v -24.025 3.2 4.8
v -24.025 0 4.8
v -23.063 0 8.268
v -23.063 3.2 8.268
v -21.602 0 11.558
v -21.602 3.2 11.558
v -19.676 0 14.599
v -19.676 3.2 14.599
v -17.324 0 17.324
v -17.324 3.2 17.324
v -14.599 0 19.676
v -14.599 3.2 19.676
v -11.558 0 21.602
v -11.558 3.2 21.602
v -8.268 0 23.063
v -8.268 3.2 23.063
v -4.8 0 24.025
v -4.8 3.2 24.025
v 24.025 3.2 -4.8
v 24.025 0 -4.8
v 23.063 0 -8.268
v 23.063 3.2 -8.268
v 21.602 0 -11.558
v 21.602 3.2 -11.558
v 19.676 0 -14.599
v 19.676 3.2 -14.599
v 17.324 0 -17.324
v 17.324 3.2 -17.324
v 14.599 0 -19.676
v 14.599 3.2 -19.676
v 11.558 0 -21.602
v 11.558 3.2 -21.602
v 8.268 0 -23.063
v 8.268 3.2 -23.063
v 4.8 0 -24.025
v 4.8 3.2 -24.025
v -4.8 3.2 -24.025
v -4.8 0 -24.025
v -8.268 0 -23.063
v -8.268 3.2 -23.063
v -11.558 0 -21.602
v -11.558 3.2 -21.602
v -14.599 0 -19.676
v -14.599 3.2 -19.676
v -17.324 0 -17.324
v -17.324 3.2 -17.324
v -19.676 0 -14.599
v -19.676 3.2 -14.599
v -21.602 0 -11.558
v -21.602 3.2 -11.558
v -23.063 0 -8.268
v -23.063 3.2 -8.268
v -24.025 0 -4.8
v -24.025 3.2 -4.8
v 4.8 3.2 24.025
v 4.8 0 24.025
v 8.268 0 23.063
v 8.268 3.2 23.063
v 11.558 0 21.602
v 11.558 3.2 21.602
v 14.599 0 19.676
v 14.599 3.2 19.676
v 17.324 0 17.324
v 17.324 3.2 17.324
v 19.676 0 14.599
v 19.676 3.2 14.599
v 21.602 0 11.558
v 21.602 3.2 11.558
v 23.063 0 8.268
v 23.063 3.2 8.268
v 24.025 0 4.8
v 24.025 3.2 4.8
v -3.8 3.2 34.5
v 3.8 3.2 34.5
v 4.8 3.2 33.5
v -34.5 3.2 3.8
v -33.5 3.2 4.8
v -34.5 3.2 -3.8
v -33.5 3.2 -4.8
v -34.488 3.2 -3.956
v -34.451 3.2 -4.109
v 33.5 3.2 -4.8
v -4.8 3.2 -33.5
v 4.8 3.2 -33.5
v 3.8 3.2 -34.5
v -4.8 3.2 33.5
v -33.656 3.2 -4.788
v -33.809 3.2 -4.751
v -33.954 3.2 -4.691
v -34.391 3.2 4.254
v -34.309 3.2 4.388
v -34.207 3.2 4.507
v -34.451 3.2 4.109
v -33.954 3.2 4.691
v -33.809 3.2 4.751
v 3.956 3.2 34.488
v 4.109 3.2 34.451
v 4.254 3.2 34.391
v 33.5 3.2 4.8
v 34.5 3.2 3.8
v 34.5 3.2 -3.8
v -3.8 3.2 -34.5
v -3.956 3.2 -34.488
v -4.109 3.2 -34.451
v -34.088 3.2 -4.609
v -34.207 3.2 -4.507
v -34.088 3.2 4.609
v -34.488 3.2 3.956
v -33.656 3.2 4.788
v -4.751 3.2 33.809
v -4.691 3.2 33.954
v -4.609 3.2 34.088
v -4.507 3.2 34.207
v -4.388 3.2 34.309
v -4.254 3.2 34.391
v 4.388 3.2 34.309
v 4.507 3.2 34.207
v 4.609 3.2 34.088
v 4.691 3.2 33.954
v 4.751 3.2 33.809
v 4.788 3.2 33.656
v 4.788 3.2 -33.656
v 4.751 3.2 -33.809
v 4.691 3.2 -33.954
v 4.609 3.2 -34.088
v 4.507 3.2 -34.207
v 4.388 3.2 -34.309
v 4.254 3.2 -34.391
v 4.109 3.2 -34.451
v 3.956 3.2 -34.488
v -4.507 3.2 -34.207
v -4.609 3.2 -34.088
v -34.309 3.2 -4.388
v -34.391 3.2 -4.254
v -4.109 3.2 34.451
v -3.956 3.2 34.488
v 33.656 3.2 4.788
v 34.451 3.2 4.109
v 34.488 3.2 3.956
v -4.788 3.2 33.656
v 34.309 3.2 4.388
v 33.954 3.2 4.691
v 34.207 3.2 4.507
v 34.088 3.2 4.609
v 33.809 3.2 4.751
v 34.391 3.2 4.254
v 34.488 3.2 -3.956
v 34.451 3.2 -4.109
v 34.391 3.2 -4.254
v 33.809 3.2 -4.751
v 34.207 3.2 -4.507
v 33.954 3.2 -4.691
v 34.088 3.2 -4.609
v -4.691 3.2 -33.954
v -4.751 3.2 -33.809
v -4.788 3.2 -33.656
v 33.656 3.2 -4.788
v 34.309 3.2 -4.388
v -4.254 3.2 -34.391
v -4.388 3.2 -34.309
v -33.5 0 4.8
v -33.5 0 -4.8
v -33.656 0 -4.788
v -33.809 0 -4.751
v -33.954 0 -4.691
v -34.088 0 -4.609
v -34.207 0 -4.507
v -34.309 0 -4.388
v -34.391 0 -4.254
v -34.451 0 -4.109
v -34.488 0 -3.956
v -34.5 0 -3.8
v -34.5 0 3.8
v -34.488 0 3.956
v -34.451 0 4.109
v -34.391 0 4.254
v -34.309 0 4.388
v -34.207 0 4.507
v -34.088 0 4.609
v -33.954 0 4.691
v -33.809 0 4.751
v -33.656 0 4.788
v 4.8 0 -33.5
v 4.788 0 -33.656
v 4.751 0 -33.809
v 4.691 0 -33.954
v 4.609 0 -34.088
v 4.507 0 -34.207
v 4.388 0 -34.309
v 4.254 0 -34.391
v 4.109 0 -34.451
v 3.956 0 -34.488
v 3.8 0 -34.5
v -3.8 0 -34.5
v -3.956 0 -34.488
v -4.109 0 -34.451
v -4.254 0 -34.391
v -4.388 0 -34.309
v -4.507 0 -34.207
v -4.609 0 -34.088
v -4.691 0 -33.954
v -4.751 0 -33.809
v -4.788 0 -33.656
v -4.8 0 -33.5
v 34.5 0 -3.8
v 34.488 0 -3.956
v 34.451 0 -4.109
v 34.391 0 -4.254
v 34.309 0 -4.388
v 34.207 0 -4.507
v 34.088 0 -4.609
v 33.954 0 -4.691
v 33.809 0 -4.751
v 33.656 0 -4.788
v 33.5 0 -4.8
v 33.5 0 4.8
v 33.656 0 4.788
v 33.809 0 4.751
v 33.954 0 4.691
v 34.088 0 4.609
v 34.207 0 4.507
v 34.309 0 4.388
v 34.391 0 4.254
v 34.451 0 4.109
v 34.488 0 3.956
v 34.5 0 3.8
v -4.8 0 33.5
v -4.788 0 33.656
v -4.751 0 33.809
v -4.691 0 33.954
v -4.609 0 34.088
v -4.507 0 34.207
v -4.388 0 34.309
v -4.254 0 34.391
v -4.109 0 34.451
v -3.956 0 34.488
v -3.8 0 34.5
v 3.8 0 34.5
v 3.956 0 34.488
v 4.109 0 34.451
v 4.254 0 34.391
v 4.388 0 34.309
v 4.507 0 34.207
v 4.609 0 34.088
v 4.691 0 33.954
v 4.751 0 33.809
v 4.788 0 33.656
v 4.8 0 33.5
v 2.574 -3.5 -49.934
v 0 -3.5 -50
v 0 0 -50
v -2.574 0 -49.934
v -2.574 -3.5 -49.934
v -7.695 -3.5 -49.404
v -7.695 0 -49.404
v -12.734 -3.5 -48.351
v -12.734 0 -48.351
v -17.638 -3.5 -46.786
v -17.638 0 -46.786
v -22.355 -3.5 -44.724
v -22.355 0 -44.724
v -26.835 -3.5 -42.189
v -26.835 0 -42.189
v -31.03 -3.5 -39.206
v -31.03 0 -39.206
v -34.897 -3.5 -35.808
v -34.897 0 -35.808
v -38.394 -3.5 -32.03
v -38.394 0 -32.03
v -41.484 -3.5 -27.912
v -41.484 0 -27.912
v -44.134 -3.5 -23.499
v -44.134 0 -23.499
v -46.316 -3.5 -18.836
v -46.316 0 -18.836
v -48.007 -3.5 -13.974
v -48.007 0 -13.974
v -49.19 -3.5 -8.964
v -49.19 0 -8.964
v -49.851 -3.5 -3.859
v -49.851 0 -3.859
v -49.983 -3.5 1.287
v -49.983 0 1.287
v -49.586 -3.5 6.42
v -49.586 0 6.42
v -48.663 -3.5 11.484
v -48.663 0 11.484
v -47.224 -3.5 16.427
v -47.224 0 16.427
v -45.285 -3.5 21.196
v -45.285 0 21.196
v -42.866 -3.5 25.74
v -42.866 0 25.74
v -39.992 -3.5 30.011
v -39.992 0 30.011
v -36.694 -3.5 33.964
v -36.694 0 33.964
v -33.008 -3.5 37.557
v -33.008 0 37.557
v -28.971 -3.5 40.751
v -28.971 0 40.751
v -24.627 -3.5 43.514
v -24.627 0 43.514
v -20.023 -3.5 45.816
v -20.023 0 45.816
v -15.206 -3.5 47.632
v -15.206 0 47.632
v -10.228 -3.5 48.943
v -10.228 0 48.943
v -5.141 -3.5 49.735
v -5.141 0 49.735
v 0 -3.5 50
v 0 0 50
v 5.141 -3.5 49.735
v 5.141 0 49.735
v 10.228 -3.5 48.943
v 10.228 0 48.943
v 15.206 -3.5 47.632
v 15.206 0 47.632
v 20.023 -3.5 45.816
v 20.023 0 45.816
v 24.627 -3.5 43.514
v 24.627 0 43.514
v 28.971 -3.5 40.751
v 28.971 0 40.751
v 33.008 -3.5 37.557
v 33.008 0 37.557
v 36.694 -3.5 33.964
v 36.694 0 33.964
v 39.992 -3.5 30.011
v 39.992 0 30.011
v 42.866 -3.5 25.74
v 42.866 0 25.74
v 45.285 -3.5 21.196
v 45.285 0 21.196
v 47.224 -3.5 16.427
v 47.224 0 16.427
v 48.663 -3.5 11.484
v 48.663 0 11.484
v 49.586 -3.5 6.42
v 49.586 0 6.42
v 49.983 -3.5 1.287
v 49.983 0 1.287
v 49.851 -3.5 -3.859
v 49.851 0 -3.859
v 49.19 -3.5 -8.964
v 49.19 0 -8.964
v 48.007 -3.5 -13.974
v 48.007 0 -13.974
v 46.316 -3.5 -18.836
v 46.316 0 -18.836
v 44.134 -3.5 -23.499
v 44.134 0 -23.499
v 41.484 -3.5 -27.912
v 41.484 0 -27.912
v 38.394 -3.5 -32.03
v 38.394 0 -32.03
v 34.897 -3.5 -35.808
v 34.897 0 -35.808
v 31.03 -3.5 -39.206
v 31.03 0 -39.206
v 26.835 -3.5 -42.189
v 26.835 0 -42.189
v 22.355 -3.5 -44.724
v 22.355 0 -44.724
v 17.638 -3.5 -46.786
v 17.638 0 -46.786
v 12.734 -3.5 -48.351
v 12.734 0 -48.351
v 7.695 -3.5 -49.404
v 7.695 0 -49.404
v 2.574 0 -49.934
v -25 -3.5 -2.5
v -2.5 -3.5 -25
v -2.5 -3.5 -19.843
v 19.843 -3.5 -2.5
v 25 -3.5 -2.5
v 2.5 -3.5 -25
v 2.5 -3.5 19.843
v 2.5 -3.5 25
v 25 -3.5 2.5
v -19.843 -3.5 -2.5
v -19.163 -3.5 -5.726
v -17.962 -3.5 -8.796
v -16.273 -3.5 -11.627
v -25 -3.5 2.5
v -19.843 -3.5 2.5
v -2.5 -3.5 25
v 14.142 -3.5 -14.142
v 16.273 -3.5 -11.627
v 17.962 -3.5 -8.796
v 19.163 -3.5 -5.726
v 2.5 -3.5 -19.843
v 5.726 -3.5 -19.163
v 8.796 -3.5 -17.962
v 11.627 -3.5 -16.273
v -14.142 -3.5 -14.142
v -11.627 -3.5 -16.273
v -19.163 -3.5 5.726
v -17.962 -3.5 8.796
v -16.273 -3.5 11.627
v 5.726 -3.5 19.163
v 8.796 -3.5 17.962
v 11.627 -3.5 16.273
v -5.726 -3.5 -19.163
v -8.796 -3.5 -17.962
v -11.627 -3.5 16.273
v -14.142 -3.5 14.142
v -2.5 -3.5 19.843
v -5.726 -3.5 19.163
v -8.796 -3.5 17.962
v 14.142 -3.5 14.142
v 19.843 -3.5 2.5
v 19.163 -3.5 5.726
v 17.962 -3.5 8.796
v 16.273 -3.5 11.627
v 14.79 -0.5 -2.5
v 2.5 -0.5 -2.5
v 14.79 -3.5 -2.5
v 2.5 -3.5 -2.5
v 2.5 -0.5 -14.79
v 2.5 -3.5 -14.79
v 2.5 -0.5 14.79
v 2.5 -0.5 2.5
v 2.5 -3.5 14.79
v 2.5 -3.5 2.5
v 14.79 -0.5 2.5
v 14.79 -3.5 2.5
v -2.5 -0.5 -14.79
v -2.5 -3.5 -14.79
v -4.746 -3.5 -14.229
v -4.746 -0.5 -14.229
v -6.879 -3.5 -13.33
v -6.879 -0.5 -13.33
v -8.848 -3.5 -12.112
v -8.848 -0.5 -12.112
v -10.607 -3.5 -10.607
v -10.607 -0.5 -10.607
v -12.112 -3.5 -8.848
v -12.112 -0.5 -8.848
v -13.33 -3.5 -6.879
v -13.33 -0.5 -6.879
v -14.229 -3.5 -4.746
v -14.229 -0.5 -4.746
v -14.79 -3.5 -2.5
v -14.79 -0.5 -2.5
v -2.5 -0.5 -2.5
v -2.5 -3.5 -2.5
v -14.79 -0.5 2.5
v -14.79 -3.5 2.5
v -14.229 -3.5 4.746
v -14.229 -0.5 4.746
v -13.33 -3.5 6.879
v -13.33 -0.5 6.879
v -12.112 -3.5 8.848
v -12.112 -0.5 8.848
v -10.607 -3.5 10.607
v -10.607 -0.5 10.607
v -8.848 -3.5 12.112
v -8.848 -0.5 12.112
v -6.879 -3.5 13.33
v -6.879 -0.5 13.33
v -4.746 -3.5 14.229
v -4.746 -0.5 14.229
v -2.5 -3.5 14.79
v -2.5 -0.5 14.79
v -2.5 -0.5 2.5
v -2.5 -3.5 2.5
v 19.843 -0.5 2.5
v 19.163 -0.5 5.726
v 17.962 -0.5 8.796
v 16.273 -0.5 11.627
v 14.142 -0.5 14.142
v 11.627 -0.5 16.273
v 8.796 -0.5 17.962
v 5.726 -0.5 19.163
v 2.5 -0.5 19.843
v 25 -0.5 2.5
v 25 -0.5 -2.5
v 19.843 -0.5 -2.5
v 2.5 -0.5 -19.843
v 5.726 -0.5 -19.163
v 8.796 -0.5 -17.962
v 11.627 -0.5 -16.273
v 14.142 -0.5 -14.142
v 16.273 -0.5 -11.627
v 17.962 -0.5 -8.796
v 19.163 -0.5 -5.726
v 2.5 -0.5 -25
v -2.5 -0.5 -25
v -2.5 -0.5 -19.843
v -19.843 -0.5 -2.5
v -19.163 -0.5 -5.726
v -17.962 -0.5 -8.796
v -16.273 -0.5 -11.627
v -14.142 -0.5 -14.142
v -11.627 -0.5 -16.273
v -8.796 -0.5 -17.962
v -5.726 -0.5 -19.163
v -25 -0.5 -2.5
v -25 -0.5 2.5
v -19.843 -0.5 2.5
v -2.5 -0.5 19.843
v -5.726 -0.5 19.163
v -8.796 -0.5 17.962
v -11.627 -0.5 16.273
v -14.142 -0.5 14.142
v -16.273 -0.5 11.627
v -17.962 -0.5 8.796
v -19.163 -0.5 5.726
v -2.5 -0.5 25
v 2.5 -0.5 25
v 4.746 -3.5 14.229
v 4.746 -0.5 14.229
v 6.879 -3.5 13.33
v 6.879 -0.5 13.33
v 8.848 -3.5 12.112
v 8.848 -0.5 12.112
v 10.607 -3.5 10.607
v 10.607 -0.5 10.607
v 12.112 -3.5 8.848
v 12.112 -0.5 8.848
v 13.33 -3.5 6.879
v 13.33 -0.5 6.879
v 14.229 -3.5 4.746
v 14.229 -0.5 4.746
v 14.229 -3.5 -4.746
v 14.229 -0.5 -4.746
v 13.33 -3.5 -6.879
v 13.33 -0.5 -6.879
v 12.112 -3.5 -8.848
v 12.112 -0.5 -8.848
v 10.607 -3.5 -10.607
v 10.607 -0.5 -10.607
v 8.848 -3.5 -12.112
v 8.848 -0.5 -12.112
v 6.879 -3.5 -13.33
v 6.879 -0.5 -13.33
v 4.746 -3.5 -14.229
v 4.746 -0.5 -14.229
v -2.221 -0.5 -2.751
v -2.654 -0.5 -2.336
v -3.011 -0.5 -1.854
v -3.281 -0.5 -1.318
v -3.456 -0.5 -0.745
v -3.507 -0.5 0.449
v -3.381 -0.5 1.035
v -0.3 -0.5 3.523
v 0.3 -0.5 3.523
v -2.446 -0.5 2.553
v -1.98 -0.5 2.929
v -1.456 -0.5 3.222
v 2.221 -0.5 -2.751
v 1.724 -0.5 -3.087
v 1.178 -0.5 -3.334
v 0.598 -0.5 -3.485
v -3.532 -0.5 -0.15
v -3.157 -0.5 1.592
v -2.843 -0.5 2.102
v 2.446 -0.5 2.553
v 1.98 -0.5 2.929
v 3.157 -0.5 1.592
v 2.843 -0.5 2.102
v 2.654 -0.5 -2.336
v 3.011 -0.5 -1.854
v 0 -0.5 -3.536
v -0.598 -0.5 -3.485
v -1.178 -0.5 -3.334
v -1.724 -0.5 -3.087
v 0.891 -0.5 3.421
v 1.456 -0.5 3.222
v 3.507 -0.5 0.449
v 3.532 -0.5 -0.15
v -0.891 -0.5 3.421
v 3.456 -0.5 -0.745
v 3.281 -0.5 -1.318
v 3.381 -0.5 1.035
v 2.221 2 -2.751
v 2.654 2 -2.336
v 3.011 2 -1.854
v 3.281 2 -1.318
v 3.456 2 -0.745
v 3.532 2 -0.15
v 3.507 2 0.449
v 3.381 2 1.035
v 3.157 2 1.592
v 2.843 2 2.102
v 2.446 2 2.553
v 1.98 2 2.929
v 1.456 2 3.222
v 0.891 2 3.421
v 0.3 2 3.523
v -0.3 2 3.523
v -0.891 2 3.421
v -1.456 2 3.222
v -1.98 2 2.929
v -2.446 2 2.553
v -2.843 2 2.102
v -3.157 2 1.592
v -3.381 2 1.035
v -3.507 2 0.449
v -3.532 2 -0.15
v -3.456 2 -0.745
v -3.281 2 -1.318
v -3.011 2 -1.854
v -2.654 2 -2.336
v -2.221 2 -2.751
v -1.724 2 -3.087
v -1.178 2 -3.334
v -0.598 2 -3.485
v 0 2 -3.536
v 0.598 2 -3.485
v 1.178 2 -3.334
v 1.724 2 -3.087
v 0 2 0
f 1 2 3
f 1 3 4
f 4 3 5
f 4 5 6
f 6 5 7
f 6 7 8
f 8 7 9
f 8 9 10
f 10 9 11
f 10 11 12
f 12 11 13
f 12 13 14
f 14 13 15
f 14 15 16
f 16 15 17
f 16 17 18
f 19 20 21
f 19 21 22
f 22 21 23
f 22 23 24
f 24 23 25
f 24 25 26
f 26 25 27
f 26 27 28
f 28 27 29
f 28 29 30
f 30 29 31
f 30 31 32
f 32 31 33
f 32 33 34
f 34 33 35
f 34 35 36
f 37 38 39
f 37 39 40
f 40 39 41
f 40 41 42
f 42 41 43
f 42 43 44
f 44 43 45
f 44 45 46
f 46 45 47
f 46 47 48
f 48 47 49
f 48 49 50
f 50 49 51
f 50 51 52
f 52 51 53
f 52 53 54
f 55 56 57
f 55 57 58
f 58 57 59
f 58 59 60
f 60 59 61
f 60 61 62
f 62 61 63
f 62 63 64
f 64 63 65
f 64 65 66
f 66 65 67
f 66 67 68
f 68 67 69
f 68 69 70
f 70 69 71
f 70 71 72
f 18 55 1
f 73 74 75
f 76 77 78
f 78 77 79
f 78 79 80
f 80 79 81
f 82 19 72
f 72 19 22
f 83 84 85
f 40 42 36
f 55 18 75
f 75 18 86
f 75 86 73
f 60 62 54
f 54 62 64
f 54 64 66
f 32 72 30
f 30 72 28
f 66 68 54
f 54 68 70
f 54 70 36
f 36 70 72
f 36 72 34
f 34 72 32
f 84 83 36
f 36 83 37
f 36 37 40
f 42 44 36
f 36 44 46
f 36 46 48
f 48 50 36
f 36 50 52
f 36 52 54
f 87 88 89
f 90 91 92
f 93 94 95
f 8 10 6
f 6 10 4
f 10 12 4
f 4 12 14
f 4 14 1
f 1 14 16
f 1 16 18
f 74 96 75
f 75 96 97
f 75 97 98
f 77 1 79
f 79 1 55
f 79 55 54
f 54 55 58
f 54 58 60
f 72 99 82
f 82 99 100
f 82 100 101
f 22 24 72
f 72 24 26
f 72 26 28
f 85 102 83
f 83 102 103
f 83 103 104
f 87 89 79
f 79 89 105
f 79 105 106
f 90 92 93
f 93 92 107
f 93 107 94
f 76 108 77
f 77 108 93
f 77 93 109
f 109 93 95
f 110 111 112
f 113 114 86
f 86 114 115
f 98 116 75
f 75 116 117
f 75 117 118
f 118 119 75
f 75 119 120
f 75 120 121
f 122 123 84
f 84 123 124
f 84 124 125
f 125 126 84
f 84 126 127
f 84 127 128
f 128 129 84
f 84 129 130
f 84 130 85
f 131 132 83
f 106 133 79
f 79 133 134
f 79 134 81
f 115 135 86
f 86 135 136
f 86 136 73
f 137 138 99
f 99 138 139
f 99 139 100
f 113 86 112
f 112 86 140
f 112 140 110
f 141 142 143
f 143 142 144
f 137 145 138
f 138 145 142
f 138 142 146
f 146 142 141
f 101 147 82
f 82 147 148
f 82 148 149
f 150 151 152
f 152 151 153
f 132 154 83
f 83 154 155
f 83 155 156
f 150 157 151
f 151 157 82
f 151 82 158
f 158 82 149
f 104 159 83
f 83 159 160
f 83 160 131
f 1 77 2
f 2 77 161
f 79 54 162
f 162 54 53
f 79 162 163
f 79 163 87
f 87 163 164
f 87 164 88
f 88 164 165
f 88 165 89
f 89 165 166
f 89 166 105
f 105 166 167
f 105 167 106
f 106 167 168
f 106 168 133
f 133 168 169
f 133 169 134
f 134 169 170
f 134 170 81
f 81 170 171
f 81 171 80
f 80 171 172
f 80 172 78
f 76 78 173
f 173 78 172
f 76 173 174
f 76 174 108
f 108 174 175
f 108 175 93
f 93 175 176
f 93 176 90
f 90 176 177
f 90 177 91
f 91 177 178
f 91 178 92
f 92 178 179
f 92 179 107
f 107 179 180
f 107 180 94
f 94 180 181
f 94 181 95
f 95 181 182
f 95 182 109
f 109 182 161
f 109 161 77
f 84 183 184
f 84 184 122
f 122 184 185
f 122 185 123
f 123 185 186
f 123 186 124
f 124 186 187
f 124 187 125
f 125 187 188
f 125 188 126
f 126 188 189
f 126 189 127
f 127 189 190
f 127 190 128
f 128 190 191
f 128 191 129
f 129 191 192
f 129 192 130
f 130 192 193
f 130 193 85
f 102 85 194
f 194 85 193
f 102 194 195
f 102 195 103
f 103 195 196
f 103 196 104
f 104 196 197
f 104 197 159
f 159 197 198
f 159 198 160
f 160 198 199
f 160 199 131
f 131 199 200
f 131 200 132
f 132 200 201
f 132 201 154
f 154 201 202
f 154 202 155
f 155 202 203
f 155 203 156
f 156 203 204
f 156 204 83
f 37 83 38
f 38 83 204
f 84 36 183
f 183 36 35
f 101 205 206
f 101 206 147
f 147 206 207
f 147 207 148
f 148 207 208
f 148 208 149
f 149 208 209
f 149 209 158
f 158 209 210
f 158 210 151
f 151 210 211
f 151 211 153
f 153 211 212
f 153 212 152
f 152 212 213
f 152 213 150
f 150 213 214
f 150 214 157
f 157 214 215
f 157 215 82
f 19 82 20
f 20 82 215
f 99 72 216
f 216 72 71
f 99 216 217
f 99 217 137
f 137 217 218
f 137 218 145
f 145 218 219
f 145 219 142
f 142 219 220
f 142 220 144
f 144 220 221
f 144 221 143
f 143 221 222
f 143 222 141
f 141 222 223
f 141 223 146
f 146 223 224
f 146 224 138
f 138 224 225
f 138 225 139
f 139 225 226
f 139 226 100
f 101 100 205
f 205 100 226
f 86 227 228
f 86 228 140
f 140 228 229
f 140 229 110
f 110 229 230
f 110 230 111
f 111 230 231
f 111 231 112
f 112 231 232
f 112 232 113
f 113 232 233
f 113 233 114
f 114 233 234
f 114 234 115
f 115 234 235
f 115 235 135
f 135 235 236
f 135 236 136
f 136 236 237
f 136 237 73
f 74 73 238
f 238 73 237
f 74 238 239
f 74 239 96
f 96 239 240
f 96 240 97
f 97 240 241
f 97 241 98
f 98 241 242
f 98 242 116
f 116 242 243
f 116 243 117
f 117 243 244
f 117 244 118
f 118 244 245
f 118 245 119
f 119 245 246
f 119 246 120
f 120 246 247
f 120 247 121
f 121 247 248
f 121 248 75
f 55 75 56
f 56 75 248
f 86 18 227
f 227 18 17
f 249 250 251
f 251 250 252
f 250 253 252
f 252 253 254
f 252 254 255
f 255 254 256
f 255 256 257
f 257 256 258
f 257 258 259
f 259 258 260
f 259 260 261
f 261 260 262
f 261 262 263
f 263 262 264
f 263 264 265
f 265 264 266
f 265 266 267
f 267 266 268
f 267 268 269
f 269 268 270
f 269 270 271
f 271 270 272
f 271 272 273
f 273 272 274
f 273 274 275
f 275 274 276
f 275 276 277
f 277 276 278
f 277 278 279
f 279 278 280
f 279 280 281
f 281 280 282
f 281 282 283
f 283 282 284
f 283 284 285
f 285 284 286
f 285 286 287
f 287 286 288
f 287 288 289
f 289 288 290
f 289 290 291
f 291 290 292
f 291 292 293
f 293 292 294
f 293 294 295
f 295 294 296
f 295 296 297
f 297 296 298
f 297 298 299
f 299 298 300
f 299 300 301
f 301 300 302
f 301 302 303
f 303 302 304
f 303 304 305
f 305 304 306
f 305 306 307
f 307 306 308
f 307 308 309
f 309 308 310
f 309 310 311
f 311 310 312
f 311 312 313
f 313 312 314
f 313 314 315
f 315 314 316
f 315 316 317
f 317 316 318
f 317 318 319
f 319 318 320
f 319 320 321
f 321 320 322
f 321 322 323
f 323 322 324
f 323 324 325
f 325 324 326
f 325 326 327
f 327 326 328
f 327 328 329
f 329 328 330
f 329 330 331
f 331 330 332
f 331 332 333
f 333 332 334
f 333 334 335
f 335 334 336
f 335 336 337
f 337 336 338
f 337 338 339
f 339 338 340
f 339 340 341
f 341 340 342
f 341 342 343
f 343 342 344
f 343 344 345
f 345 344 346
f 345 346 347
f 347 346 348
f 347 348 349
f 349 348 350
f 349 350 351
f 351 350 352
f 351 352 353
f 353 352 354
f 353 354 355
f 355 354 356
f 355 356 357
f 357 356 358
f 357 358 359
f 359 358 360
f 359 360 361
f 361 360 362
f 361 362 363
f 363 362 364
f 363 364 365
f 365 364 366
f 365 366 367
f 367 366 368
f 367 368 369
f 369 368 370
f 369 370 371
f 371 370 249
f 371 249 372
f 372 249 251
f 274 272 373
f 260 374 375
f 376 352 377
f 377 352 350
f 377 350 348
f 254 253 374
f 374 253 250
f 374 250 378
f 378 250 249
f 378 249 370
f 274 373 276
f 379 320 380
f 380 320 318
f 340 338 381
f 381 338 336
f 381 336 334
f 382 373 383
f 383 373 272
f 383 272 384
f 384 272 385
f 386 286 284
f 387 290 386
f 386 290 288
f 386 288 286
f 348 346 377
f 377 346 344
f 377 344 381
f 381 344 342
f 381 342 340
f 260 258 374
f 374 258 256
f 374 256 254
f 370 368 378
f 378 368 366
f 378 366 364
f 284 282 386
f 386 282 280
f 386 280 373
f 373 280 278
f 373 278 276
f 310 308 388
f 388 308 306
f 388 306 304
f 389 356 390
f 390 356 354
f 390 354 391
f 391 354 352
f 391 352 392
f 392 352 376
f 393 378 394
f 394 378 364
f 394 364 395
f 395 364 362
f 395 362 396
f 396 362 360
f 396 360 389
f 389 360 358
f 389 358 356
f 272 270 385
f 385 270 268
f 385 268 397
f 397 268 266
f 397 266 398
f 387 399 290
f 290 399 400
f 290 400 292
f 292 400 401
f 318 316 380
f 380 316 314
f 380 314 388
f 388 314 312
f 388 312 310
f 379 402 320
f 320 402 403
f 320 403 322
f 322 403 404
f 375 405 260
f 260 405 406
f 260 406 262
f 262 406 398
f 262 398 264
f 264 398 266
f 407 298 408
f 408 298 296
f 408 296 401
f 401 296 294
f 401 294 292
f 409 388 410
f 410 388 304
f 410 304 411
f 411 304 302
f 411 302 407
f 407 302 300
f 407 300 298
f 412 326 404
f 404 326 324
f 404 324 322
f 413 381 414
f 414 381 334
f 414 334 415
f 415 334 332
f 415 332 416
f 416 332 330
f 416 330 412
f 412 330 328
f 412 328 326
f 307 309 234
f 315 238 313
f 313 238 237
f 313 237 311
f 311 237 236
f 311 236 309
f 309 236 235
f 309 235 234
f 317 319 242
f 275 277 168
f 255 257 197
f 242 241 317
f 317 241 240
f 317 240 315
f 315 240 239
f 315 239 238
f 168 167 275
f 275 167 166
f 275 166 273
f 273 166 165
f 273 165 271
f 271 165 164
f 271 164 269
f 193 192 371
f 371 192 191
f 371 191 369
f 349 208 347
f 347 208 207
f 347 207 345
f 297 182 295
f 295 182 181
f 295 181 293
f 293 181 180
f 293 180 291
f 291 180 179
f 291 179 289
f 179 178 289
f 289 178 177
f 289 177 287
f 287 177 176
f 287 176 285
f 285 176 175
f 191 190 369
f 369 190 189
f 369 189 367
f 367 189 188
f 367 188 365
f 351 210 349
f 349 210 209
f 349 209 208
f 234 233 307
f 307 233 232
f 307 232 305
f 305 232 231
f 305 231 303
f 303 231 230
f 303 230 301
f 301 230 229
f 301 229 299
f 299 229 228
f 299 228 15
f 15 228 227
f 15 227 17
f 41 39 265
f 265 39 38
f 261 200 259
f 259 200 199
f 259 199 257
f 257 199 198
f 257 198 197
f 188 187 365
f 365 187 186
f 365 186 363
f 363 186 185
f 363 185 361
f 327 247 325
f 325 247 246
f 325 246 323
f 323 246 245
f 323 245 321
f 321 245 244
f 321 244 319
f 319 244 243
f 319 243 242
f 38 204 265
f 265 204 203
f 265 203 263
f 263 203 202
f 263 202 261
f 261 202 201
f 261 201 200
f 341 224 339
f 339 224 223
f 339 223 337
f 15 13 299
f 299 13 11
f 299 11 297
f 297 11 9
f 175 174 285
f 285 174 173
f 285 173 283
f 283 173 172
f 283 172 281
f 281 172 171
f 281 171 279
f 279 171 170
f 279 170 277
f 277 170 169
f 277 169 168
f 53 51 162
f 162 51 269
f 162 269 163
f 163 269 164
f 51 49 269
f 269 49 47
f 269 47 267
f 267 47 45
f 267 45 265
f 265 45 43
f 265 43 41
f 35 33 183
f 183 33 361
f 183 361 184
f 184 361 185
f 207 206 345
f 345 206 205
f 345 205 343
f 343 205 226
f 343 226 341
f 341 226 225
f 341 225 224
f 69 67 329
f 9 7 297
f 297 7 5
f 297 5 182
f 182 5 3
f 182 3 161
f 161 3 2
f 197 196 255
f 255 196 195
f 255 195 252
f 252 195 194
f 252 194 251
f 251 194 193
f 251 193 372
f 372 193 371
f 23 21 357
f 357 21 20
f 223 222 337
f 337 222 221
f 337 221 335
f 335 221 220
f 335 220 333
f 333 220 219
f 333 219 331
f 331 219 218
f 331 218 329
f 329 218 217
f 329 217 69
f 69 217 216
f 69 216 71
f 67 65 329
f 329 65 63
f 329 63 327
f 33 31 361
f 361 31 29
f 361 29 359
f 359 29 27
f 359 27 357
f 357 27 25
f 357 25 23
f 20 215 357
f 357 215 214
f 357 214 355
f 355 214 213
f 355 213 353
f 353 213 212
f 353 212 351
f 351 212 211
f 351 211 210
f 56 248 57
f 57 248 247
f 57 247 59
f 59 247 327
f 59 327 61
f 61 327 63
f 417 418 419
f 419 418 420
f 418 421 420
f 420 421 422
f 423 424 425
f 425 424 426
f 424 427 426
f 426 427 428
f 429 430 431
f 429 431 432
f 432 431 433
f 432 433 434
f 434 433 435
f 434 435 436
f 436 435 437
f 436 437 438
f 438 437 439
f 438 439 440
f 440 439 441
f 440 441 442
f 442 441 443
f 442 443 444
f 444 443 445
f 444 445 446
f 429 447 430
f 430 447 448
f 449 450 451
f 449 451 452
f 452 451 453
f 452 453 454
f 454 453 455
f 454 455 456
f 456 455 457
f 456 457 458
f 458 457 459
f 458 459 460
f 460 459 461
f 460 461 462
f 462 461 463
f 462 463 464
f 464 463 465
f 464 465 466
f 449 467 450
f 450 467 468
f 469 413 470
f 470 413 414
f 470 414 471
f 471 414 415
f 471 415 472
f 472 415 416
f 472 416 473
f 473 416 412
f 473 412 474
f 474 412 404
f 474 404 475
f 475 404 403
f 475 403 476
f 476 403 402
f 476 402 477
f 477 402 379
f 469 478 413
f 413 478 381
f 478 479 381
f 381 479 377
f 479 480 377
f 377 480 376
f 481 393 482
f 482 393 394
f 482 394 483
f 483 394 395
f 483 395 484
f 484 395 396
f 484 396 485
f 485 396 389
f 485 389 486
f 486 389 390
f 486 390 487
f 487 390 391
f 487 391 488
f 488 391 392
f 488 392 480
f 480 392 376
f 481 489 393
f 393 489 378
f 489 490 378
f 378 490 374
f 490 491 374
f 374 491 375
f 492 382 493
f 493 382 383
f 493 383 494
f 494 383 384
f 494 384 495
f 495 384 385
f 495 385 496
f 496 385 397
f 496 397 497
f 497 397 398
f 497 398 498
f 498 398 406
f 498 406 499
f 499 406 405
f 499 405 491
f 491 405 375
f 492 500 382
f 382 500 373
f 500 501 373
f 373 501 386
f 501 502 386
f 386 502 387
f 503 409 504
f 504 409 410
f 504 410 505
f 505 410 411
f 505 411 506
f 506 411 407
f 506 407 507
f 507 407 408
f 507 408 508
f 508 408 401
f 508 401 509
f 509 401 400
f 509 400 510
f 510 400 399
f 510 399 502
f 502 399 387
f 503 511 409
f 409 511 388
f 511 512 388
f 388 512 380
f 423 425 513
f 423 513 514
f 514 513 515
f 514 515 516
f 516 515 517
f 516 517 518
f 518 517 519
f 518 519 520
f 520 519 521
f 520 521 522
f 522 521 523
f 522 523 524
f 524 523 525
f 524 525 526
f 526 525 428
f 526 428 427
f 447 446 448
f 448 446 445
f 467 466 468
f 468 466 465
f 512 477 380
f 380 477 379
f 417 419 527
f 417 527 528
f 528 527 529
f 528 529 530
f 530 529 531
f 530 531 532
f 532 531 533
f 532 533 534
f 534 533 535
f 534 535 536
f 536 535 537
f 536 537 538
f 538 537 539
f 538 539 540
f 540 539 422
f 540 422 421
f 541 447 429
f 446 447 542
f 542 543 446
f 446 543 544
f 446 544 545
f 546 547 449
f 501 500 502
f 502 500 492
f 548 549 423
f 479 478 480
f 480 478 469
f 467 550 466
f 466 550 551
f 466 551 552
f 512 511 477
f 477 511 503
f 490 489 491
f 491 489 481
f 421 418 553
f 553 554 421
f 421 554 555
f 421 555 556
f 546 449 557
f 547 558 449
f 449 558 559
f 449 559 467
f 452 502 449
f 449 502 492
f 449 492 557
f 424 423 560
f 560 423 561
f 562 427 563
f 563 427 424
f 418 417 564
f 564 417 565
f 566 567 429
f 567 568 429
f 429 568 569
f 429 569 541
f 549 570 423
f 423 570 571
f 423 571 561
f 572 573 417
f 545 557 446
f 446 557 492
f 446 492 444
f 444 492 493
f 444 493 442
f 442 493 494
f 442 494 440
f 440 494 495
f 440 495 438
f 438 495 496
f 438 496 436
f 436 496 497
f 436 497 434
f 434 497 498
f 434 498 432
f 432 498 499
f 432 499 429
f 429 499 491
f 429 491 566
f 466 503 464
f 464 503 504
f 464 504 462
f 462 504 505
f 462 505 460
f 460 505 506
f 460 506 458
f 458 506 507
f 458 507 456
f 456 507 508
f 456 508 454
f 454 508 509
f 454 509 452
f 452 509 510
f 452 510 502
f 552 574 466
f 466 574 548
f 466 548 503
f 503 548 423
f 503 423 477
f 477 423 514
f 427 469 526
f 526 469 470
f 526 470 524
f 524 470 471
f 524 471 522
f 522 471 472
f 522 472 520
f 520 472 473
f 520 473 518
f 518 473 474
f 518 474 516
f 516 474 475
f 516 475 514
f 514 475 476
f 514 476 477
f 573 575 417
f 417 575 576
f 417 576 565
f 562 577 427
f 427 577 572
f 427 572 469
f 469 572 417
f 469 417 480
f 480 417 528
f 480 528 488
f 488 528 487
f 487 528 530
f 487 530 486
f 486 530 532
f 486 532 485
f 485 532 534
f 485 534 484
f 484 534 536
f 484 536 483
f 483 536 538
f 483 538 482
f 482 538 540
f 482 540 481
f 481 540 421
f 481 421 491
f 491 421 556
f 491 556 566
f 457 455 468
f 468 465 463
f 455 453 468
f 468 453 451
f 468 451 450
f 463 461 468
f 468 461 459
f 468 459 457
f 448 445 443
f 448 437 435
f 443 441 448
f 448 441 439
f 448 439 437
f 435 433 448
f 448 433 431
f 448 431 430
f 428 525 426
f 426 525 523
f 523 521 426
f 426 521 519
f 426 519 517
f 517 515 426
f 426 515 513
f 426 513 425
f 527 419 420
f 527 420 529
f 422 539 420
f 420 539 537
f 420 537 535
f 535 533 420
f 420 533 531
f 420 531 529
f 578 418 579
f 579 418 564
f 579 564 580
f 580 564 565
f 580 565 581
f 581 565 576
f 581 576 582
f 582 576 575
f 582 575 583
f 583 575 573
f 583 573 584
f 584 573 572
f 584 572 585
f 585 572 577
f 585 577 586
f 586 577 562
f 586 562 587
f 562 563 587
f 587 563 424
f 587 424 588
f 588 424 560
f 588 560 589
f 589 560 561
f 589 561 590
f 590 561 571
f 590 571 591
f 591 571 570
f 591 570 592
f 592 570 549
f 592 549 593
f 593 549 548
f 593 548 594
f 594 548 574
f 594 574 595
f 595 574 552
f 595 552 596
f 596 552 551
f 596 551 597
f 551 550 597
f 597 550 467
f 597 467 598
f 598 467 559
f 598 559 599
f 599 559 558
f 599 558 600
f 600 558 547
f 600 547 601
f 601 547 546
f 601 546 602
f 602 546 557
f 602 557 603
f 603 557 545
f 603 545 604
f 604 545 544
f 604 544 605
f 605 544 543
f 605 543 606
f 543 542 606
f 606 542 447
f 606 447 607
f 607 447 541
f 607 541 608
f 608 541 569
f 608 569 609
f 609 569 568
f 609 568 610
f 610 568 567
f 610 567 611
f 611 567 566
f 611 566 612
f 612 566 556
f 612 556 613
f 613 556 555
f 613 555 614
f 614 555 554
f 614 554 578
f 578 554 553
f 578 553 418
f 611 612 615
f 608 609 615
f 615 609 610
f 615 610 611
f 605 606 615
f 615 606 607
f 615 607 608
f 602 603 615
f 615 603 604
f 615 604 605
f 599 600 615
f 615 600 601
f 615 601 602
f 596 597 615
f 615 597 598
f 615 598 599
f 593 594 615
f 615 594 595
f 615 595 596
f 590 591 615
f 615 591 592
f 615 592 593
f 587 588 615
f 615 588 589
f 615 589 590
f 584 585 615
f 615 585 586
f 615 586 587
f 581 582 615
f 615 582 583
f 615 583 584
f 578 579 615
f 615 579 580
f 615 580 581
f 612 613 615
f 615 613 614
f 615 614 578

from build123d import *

# Parameters (mm, degrees)
CROQUIS5_R              = 24.5
SALIENTE_EXTRUIR3_DEPTH = 3.2
SALIENTE_EXTRUIR4_DEPTH = 3.2
CROQUIS7_R              = 50
SALIENTE_EXTRUIR5_DEPTH = 3.5
CROQUIS8_W              = 5
CROQUIS8_H              = 5
CORTAR_EXTRUIR3_DEPTH   = 3
CROQUIS9_R              = 3.535533906
CORTAR_EXTRUIR4_DEPTH   = 2.5


with BuildPart() as part:
    # Croquis5 → Saliente-Extruir3 (new body)
    with BuildSketch(Plane(origin=(0, 0, 0), x_dir=(1, 0, 0), z_dir=(0, 1, 0))):
        with Locations(Location((0, 0, 0), (0, 0, 270))):
            Circle(CROQUIS5_R)
    extrude(amount=SALIENTE_EXTRUIR3_DEPTH)

    # Croquis6 → Saliente-Extruir4 (add)
    with BuildSketch(Plane.XZ):
        with BuildLine():
            Line((33.5, 4.8), (-33.5, 4.8))
            ThreePointArc((-33.5, 4.8), (-34.207106781, 4.507106781), (-34.5, 3.8))
            Line((-34.5, 3.8), (-34.5, -3.8))
            ThreePointArc((-34.5, -3.8), (-34.207106781, -4.507106781), (-33.5, -4.8))
            Line((-33.5, -4.8), (33.5, -4.8))
            ThreePointArc((33.5, -4.8), (34.207106781, -4.507106781), (34.5, -3.8))
            Line((34.5, -3.8), (34.5, 3.8))
            ThreePointArc((34.5, 3.8), (34.207106781, 4.507106781), (33.5, 4.8))
        make_face()
        with BuildLine():
            Line((3.8, -34.5), (-3.8, -34.5))
            ThreePointArc((-3.8, -34.5), (-4.507106781, -34.207106781), (-4.8, -33.5))
            Line((-4.8, -33.5), (-4.8, 33.5))
            ThreePointArc((-4.8, 33.5), (-4.507106781, 34.207106781), (-3.8, 34.5))
            Line((-3.8, 34.5), (3.8, 34.5))
            ThreePointArc((3.8, 34.5), (4.507106781, 34.207106781), (4.8, 33.5))
            Line((4.8, 33.5), (4.8, -33.5))
            ThreePointArc((4.8, -33.5), (4.507106781, -34.207106781), (3.8, -34.5))
        make_face()
    extrude(amount=-SALIENTE_EXTRUIR4_DEPTH)

    # Croquis7 → Saliente-Extruir5 (add)
    with BuildSketch(Plane.XZ):
        with Locations(Location((0, 0, 0), (0, 0, 270))):
            Circle(CROQUIS7_R)
    extrude(amount=SALIENTE_EXTRUIR5_DEPTH)

    # Croquis8 → Cortar-Extruir3 (cut)
    with BuildSketch(Plane.XZ.offset(3.5)):
        with BuildLine():
            Line((-2.5, -25), (2.5, -25))
            Line((2.5, -25), (2.5, -19.843134833))
            ThreePointArc((2.5, -19.843134833), (0, -20), (-2.5, -19.843134833))
            Line((-2.5, -19.843134833), (-2.5, -25))
        make_face()
        with BuildLine():
            ThreePointArc((-2.5, -19.843134833), (0, -20), (2.5, -19.843134833))
            Line((2.5, -19.843134833), (2.5, -14.790199458))
            ThreePointArc((2.5, -14.790199458), (0, -15), (-2.5, -14.790199458))
            Line((-2.5, -14.790199458), (-2.5, -19.843134833))
        make_face()
        with BuildLine():
            ThreePointArc((2.5, 19.843134833), (0, 20), (-2.5, 19.843134833))
            Line((-2.5, 19.843134833), (-2.5, 14.790199458))
            ThreePointArc((-2.5, 14.790199458), (0, 15), (2.5, 14.790199458))
            Line((2.5, 14.790199458), (2.5, 19.843134833))
        make_face()
        with BuildLine():
            ThreePointArc((-2.5, -14.790199458), (0, -15), (2.5, -14.790199458))
            Line((2.5, -14.790199458), (2.5, -2.5))
            Line((2.5, -2.5), (-2.5, -2.5))
            Line((-2.5, -2.5), (-2.5, -14.790199458))
        make_face()
        Rectangle(CROQUIS8_W, CROQUIS8_H)
        with BuildLine():
            Line((-2.5, 2.5), (2.5, 2.5))
            Line((2.5, 2.5), (2.5, 14.790199458))
            ThreePointArc((2.5, 14.790199458), (0, 15), (-2.5, 14.790199458))
            Line((-2.5, 14.790199458), (-2.5, 2.5))
        make_face()
        with BuildLine():
            Line((-2.5, 25), (-2.5, 19.843134833))
            ThreePointArc((-2.5, 19.843134833), (0, 20), (2.5, 19.843134833))
            Line((2.5, 19.843134833), (2.5, 25))
            Line((2.5, 25), (-2.5, 25))
        make_face()
        with BuildLine():
            Line((2.5, 2.5), (2.5, -2.5))
            Line((2.5, -2.5), (14.790199458, -2.5))
            ThreePointArc((14.790199458, -2.5), (14.947457842, -1.254393904), (15, 0))
            ThreePointArc((15, 0), (14.947457842, 1.254393904), (14.790199458, 2.5))
            Line((14.790199458, 2.5), (2.5, 2.5))
        make_face()
        with BuildLine():
            Line((14.790199458, -2.5), (19.843134833, -2.5))
            ThreePointArc((19.843134833, -2.5), (19.960745185, -1.252458251), (20, 0))
            ThreePointArc((20, 0), (19.960745185, 1.252458251), (19.843134833, 2.5))
            Line((19.843134833, 2.5), (14.790199458, 2.5))
            ThreePointArc((14.790199458, 2.5), (14.947457842, 1.254393904), (15, 0))
            ThreePointArc((15, 0), (14.947457842, -1.254393904), (14.790199458, -2.5))
        make_face()
        with BuildLine():
            ThreePointArc((-19.843134833, 2.5), (-20, 0), (-19.843134833, -2.5))
            Line((-19.843134833, -2.5), (-14.790199458, -2.5))
            ThreePointArc((-14.790199458, -2.5), (-15, 0), (-14.790199458, 2.5))
            Line((-14.790199458, 2.5), (-19.843134833, 2.5))
        make_face()
        with BuildLine():
            ThreePointArc((20, 0), (19.960745185, -1.252458251), (19.843134833, -2.5))
            Line((19.843134833, -2.5), (25, -2.5))
            Line((25, -2.5), (25, 2.5))
            Line((25, 2.5), (19.843134833, 2.5))
            ThreePointArc((19.843134833, 2.5), (19.960745185, 1.252458251), (20, 0))
        make_face()
        with BuildLine():
            Line((-14.790199458, -2.5), (-2.5, -2.5))
            Line((-2.5, -2.5), (-2.5, 2.5))
            Line((-2.5, 2.5), (-14.790199458, 2.5))
            ThreePointArc((-14.790199458, 2.5), (-15, 0), (-14.790199458, -2.5))
        make_face()
        with BuildLine():
            Line((-25, -2.5), (-19.843134833, -2.5))
            ThreePointArc((-19.843134833, -2.5), (-20, 0), (-19.843134833, 2.5))
            Line((-19.843134833, 2.5), (-25, 2.5))
            Line((-25, 2.5), (-25, -2.5))
        make_face()
        with BuildLine():
            ThreePointArc((-2.5, 19.843134833), (-14.142135624, 14.142135624), (-19.843134833, 2.5))
            Line((-19.843134833, 2.5), (-14.790199458, 2.5))
            ThreePointArc((-14.790199458, 2.5), (-10.606601718, 10.606601718), (-2.5, 14.790199458))
            Line((-2.5, 14.790199458), (-2.5, 19.843134833))
        make_face()
        with BuildLine():
            Line((14.790199458, 2.5), (19.843134833, 2.5))
            ThreePointArc((19.843134833, 2.5), (14.142135624, 14.142135624), (2.5, 19.843134833))
            Line((2.5, 19.843134833), (2.5, 14.790199458))
            ThreePointArc((2.5, 14.790199458), (10.606601718, 10.606601718), (14.790199458, 2.5))
        make_face()
        with BuildLine():
            Line((2.5, -14.790199458), (2.5, -19.843134833))
            ThreePointArc((2.5, -19.843134833), (14.142135624, -14.142135624), (19.843134833, -2.5))
            Line((19.843134833, -2.5), (14.790199458, -2.5))
            ThreePointArc((14.790199458, -2.5), (10.606601718, -10.606601718), (2.5, -14.790199458))
        make_face()
        with BuildLine():
            ThreePointArc((-19.843134833, -2.5), (-14.142135624, -14.142135624), (-2.5, -19.843134833))
            Line((-2.5, -19.843134833), (-2.5, -14.790199458))
            ThreePointArc((-2.5, -14.790199458), (-10.606601718, -10.606601718), (-14.790199458, -2.5))
            Line((-14.790199458, -2.5), (-19.843134833, -2.5))
        make_face()
    extrude(amount=-CORTAR_EXTRUIR3_DEPTH, mode=Mode.SUBTRACT)

    # Croquis9 → Cortar-Extruir4 (cut)
    with BuildSketch(Plane.XZ.offset(0.5)):
        with Locations(Location((0, 0, 0), (0, 0, 270))):
            Circle(CROQUIS9_R)
    extrude(amount=-CORTAR_EXTRUIR4_DEPTH, mode=Mode.SUBTRACT)


solid = part.part
